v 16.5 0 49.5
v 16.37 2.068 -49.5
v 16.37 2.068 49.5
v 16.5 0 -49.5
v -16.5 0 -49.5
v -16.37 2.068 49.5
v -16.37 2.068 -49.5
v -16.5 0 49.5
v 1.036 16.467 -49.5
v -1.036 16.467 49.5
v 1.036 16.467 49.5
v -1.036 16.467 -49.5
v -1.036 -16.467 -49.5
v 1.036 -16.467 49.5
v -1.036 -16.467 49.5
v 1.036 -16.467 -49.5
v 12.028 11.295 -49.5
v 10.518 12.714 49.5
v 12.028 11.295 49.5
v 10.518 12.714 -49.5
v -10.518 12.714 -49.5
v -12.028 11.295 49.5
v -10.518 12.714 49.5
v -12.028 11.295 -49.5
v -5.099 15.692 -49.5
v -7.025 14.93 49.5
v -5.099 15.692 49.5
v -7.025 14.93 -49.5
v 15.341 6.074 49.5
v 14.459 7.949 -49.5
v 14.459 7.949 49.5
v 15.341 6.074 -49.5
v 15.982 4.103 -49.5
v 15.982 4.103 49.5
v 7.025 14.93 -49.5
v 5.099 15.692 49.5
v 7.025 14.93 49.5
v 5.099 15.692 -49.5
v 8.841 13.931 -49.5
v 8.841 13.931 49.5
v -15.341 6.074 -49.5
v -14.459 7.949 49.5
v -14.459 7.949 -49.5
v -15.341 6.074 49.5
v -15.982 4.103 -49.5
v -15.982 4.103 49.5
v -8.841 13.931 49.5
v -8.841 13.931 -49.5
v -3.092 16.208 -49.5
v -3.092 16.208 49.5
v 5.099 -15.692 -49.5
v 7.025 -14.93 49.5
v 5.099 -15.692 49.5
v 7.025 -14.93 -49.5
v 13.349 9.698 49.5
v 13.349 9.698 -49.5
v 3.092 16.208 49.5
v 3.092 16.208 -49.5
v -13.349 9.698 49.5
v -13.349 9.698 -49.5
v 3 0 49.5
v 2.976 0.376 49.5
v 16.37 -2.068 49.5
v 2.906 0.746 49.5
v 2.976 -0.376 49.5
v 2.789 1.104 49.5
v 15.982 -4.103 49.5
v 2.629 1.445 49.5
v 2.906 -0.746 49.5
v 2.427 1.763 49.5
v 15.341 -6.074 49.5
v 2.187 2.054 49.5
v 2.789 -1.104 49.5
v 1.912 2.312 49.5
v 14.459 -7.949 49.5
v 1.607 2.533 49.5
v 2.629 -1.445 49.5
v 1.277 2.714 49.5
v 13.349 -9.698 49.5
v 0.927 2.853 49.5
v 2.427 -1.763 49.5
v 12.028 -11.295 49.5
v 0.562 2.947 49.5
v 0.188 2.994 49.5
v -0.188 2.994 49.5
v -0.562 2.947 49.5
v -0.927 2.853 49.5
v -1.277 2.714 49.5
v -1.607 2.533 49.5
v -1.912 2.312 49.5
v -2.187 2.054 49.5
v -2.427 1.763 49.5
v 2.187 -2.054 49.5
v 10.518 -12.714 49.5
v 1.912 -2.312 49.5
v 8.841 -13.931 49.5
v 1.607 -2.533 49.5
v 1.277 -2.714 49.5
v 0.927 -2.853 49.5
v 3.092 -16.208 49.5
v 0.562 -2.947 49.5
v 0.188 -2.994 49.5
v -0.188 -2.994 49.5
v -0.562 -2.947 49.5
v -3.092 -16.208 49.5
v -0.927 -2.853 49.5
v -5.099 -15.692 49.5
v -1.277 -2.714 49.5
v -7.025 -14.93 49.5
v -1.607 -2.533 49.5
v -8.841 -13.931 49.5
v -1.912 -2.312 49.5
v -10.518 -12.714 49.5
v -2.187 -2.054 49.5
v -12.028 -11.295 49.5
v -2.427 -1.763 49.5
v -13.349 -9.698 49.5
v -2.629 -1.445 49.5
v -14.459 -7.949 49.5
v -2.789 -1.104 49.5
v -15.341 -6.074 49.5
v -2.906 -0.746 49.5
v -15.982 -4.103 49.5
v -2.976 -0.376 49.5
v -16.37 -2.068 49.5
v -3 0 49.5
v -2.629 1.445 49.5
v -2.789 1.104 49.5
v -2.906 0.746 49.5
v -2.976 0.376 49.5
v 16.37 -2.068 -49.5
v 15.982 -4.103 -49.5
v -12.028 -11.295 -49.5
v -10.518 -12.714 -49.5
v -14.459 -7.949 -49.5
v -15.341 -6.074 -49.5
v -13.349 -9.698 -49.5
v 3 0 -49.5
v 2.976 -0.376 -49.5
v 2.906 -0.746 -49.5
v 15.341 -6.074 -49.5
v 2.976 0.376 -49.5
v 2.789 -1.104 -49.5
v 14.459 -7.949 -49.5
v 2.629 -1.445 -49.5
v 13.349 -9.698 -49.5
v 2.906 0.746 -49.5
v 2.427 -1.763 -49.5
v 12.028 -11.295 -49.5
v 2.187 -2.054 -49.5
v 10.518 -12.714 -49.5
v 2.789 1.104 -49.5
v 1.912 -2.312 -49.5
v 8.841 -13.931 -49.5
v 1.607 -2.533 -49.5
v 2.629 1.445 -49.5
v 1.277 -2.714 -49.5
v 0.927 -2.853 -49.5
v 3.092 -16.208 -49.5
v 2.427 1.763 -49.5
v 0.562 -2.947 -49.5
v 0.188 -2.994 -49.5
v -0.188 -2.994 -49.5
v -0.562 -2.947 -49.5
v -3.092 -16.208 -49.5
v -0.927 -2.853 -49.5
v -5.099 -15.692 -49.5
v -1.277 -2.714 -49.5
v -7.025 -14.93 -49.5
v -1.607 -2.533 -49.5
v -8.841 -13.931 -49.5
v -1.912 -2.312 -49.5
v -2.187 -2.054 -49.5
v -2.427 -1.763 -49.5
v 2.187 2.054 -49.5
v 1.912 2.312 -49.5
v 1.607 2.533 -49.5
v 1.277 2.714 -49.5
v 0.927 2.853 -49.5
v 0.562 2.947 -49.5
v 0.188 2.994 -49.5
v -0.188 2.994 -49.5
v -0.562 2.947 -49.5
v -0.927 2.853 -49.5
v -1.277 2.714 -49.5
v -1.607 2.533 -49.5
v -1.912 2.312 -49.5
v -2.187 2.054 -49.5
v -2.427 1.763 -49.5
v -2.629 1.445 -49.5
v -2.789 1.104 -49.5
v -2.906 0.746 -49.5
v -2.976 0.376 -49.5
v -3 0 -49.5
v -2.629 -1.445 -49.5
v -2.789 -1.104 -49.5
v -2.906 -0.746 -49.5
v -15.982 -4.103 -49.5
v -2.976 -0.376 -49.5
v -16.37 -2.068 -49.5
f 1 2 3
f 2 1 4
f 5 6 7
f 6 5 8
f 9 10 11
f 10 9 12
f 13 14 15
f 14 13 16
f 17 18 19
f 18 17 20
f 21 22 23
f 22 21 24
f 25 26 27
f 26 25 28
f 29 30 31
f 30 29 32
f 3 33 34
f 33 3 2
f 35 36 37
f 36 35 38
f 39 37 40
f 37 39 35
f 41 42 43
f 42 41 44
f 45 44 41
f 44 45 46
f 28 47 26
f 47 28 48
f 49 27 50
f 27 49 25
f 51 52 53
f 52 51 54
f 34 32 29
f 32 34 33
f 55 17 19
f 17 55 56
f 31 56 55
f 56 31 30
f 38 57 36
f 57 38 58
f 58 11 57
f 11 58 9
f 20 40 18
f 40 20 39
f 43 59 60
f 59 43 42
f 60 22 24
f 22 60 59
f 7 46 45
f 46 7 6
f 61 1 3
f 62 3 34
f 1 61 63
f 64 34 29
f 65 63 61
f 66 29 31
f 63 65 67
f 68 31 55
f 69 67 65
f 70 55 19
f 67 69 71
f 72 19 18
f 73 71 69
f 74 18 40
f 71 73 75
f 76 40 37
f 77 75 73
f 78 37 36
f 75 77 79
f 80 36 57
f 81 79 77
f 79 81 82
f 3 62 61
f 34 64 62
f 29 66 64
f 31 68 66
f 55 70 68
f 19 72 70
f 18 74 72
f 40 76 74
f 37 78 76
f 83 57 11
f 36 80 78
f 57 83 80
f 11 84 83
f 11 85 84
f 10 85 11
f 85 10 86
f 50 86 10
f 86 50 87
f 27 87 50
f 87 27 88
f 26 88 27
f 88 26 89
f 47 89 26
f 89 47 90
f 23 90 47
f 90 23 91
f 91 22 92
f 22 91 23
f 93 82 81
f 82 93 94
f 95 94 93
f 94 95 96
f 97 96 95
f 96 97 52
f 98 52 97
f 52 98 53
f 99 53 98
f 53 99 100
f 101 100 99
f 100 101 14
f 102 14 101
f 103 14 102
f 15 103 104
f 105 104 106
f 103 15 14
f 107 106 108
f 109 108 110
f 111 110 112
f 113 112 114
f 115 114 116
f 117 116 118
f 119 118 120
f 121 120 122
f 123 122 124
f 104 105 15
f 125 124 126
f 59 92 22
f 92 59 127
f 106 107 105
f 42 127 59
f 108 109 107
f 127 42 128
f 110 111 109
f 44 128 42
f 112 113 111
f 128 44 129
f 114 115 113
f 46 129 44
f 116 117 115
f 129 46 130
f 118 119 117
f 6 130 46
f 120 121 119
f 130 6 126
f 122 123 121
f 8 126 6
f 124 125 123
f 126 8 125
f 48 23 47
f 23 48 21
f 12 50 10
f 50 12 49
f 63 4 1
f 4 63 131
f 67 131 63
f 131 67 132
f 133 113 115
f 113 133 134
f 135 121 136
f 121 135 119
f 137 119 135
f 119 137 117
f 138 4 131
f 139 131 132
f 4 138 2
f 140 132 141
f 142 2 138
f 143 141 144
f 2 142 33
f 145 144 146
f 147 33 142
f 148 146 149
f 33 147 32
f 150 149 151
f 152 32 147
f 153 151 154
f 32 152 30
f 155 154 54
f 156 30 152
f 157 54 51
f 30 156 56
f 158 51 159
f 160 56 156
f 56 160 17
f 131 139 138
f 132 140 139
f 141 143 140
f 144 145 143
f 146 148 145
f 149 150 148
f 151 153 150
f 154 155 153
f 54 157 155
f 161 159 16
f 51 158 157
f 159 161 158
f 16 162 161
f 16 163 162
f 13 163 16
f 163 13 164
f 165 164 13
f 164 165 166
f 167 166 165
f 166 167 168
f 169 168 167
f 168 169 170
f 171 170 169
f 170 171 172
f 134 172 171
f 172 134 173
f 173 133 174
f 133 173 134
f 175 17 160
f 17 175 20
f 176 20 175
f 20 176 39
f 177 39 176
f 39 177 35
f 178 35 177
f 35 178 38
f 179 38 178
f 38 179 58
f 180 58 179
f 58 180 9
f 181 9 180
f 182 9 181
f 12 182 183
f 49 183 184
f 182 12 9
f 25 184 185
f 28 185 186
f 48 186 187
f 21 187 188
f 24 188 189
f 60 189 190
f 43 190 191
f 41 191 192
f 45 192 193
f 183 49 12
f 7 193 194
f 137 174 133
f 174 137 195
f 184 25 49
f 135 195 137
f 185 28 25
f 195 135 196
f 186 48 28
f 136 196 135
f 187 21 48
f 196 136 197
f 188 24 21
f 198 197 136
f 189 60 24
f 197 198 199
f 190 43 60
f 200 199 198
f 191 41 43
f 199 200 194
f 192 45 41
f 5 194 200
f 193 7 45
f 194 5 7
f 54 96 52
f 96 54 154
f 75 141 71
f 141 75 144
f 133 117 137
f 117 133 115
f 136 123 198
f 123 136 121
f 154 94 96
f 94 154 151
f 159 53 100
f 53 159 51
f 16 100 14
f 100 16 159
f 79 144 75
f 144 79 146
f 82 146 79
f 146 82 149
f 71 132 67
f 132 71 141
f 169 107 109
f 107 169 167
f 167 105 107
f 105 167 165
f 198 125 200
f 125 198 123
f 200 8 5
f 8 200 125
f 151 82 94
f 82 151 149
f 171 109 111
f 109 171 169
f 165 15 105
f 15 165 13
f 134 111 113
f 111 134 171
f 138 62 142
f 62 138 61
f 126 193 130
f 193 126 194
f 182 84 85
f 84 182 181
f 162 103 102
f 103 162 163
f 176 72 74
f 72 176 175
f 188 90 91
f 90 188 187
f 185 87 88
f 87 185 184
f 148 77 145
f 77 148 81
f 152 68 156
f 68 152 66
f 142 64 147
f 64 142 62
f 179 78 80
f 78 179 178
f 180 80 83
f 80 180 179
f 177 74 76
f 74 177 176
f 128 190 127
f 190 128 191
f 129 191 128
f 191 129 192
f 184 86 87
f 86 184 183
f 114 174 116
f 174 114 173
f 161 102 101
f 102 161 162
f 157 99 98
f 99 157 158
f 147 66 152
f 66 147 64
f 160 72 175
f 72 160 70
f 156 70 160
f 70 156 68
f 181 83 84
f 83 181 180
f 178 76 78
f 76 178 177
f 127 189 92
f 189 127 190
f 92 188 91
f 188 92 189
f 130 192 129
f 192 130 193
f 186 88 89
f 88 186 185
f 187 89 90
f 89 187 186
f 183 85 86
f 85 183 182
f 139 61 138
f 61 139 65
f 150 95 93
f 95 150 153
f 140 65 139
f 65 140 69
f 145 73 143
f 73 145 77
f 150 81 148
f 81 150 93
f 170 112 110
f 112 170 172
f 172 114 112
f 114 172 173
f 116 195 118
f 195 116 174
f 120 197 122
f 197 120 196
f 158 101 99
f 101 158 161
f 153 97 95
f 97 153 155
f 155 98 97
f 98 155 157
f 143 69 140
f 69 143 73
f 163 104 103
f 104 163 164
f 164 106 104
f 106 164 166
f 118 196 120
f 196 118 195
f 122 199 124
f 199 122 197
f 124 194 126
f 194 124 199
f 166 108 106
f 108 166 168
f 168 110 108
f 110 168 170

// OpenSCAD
$fn = 50;


difference() {
	union() {
		translate(v = [0, 0, -49.5000000000]) {
			cylinder(h = 99, r = 16.5000000000);
		}
	}
	union() {
		translate(v = [0, 0, -100.0000000000]) {
			cylinder(h = 200, r = 3);
		}
	}
}
